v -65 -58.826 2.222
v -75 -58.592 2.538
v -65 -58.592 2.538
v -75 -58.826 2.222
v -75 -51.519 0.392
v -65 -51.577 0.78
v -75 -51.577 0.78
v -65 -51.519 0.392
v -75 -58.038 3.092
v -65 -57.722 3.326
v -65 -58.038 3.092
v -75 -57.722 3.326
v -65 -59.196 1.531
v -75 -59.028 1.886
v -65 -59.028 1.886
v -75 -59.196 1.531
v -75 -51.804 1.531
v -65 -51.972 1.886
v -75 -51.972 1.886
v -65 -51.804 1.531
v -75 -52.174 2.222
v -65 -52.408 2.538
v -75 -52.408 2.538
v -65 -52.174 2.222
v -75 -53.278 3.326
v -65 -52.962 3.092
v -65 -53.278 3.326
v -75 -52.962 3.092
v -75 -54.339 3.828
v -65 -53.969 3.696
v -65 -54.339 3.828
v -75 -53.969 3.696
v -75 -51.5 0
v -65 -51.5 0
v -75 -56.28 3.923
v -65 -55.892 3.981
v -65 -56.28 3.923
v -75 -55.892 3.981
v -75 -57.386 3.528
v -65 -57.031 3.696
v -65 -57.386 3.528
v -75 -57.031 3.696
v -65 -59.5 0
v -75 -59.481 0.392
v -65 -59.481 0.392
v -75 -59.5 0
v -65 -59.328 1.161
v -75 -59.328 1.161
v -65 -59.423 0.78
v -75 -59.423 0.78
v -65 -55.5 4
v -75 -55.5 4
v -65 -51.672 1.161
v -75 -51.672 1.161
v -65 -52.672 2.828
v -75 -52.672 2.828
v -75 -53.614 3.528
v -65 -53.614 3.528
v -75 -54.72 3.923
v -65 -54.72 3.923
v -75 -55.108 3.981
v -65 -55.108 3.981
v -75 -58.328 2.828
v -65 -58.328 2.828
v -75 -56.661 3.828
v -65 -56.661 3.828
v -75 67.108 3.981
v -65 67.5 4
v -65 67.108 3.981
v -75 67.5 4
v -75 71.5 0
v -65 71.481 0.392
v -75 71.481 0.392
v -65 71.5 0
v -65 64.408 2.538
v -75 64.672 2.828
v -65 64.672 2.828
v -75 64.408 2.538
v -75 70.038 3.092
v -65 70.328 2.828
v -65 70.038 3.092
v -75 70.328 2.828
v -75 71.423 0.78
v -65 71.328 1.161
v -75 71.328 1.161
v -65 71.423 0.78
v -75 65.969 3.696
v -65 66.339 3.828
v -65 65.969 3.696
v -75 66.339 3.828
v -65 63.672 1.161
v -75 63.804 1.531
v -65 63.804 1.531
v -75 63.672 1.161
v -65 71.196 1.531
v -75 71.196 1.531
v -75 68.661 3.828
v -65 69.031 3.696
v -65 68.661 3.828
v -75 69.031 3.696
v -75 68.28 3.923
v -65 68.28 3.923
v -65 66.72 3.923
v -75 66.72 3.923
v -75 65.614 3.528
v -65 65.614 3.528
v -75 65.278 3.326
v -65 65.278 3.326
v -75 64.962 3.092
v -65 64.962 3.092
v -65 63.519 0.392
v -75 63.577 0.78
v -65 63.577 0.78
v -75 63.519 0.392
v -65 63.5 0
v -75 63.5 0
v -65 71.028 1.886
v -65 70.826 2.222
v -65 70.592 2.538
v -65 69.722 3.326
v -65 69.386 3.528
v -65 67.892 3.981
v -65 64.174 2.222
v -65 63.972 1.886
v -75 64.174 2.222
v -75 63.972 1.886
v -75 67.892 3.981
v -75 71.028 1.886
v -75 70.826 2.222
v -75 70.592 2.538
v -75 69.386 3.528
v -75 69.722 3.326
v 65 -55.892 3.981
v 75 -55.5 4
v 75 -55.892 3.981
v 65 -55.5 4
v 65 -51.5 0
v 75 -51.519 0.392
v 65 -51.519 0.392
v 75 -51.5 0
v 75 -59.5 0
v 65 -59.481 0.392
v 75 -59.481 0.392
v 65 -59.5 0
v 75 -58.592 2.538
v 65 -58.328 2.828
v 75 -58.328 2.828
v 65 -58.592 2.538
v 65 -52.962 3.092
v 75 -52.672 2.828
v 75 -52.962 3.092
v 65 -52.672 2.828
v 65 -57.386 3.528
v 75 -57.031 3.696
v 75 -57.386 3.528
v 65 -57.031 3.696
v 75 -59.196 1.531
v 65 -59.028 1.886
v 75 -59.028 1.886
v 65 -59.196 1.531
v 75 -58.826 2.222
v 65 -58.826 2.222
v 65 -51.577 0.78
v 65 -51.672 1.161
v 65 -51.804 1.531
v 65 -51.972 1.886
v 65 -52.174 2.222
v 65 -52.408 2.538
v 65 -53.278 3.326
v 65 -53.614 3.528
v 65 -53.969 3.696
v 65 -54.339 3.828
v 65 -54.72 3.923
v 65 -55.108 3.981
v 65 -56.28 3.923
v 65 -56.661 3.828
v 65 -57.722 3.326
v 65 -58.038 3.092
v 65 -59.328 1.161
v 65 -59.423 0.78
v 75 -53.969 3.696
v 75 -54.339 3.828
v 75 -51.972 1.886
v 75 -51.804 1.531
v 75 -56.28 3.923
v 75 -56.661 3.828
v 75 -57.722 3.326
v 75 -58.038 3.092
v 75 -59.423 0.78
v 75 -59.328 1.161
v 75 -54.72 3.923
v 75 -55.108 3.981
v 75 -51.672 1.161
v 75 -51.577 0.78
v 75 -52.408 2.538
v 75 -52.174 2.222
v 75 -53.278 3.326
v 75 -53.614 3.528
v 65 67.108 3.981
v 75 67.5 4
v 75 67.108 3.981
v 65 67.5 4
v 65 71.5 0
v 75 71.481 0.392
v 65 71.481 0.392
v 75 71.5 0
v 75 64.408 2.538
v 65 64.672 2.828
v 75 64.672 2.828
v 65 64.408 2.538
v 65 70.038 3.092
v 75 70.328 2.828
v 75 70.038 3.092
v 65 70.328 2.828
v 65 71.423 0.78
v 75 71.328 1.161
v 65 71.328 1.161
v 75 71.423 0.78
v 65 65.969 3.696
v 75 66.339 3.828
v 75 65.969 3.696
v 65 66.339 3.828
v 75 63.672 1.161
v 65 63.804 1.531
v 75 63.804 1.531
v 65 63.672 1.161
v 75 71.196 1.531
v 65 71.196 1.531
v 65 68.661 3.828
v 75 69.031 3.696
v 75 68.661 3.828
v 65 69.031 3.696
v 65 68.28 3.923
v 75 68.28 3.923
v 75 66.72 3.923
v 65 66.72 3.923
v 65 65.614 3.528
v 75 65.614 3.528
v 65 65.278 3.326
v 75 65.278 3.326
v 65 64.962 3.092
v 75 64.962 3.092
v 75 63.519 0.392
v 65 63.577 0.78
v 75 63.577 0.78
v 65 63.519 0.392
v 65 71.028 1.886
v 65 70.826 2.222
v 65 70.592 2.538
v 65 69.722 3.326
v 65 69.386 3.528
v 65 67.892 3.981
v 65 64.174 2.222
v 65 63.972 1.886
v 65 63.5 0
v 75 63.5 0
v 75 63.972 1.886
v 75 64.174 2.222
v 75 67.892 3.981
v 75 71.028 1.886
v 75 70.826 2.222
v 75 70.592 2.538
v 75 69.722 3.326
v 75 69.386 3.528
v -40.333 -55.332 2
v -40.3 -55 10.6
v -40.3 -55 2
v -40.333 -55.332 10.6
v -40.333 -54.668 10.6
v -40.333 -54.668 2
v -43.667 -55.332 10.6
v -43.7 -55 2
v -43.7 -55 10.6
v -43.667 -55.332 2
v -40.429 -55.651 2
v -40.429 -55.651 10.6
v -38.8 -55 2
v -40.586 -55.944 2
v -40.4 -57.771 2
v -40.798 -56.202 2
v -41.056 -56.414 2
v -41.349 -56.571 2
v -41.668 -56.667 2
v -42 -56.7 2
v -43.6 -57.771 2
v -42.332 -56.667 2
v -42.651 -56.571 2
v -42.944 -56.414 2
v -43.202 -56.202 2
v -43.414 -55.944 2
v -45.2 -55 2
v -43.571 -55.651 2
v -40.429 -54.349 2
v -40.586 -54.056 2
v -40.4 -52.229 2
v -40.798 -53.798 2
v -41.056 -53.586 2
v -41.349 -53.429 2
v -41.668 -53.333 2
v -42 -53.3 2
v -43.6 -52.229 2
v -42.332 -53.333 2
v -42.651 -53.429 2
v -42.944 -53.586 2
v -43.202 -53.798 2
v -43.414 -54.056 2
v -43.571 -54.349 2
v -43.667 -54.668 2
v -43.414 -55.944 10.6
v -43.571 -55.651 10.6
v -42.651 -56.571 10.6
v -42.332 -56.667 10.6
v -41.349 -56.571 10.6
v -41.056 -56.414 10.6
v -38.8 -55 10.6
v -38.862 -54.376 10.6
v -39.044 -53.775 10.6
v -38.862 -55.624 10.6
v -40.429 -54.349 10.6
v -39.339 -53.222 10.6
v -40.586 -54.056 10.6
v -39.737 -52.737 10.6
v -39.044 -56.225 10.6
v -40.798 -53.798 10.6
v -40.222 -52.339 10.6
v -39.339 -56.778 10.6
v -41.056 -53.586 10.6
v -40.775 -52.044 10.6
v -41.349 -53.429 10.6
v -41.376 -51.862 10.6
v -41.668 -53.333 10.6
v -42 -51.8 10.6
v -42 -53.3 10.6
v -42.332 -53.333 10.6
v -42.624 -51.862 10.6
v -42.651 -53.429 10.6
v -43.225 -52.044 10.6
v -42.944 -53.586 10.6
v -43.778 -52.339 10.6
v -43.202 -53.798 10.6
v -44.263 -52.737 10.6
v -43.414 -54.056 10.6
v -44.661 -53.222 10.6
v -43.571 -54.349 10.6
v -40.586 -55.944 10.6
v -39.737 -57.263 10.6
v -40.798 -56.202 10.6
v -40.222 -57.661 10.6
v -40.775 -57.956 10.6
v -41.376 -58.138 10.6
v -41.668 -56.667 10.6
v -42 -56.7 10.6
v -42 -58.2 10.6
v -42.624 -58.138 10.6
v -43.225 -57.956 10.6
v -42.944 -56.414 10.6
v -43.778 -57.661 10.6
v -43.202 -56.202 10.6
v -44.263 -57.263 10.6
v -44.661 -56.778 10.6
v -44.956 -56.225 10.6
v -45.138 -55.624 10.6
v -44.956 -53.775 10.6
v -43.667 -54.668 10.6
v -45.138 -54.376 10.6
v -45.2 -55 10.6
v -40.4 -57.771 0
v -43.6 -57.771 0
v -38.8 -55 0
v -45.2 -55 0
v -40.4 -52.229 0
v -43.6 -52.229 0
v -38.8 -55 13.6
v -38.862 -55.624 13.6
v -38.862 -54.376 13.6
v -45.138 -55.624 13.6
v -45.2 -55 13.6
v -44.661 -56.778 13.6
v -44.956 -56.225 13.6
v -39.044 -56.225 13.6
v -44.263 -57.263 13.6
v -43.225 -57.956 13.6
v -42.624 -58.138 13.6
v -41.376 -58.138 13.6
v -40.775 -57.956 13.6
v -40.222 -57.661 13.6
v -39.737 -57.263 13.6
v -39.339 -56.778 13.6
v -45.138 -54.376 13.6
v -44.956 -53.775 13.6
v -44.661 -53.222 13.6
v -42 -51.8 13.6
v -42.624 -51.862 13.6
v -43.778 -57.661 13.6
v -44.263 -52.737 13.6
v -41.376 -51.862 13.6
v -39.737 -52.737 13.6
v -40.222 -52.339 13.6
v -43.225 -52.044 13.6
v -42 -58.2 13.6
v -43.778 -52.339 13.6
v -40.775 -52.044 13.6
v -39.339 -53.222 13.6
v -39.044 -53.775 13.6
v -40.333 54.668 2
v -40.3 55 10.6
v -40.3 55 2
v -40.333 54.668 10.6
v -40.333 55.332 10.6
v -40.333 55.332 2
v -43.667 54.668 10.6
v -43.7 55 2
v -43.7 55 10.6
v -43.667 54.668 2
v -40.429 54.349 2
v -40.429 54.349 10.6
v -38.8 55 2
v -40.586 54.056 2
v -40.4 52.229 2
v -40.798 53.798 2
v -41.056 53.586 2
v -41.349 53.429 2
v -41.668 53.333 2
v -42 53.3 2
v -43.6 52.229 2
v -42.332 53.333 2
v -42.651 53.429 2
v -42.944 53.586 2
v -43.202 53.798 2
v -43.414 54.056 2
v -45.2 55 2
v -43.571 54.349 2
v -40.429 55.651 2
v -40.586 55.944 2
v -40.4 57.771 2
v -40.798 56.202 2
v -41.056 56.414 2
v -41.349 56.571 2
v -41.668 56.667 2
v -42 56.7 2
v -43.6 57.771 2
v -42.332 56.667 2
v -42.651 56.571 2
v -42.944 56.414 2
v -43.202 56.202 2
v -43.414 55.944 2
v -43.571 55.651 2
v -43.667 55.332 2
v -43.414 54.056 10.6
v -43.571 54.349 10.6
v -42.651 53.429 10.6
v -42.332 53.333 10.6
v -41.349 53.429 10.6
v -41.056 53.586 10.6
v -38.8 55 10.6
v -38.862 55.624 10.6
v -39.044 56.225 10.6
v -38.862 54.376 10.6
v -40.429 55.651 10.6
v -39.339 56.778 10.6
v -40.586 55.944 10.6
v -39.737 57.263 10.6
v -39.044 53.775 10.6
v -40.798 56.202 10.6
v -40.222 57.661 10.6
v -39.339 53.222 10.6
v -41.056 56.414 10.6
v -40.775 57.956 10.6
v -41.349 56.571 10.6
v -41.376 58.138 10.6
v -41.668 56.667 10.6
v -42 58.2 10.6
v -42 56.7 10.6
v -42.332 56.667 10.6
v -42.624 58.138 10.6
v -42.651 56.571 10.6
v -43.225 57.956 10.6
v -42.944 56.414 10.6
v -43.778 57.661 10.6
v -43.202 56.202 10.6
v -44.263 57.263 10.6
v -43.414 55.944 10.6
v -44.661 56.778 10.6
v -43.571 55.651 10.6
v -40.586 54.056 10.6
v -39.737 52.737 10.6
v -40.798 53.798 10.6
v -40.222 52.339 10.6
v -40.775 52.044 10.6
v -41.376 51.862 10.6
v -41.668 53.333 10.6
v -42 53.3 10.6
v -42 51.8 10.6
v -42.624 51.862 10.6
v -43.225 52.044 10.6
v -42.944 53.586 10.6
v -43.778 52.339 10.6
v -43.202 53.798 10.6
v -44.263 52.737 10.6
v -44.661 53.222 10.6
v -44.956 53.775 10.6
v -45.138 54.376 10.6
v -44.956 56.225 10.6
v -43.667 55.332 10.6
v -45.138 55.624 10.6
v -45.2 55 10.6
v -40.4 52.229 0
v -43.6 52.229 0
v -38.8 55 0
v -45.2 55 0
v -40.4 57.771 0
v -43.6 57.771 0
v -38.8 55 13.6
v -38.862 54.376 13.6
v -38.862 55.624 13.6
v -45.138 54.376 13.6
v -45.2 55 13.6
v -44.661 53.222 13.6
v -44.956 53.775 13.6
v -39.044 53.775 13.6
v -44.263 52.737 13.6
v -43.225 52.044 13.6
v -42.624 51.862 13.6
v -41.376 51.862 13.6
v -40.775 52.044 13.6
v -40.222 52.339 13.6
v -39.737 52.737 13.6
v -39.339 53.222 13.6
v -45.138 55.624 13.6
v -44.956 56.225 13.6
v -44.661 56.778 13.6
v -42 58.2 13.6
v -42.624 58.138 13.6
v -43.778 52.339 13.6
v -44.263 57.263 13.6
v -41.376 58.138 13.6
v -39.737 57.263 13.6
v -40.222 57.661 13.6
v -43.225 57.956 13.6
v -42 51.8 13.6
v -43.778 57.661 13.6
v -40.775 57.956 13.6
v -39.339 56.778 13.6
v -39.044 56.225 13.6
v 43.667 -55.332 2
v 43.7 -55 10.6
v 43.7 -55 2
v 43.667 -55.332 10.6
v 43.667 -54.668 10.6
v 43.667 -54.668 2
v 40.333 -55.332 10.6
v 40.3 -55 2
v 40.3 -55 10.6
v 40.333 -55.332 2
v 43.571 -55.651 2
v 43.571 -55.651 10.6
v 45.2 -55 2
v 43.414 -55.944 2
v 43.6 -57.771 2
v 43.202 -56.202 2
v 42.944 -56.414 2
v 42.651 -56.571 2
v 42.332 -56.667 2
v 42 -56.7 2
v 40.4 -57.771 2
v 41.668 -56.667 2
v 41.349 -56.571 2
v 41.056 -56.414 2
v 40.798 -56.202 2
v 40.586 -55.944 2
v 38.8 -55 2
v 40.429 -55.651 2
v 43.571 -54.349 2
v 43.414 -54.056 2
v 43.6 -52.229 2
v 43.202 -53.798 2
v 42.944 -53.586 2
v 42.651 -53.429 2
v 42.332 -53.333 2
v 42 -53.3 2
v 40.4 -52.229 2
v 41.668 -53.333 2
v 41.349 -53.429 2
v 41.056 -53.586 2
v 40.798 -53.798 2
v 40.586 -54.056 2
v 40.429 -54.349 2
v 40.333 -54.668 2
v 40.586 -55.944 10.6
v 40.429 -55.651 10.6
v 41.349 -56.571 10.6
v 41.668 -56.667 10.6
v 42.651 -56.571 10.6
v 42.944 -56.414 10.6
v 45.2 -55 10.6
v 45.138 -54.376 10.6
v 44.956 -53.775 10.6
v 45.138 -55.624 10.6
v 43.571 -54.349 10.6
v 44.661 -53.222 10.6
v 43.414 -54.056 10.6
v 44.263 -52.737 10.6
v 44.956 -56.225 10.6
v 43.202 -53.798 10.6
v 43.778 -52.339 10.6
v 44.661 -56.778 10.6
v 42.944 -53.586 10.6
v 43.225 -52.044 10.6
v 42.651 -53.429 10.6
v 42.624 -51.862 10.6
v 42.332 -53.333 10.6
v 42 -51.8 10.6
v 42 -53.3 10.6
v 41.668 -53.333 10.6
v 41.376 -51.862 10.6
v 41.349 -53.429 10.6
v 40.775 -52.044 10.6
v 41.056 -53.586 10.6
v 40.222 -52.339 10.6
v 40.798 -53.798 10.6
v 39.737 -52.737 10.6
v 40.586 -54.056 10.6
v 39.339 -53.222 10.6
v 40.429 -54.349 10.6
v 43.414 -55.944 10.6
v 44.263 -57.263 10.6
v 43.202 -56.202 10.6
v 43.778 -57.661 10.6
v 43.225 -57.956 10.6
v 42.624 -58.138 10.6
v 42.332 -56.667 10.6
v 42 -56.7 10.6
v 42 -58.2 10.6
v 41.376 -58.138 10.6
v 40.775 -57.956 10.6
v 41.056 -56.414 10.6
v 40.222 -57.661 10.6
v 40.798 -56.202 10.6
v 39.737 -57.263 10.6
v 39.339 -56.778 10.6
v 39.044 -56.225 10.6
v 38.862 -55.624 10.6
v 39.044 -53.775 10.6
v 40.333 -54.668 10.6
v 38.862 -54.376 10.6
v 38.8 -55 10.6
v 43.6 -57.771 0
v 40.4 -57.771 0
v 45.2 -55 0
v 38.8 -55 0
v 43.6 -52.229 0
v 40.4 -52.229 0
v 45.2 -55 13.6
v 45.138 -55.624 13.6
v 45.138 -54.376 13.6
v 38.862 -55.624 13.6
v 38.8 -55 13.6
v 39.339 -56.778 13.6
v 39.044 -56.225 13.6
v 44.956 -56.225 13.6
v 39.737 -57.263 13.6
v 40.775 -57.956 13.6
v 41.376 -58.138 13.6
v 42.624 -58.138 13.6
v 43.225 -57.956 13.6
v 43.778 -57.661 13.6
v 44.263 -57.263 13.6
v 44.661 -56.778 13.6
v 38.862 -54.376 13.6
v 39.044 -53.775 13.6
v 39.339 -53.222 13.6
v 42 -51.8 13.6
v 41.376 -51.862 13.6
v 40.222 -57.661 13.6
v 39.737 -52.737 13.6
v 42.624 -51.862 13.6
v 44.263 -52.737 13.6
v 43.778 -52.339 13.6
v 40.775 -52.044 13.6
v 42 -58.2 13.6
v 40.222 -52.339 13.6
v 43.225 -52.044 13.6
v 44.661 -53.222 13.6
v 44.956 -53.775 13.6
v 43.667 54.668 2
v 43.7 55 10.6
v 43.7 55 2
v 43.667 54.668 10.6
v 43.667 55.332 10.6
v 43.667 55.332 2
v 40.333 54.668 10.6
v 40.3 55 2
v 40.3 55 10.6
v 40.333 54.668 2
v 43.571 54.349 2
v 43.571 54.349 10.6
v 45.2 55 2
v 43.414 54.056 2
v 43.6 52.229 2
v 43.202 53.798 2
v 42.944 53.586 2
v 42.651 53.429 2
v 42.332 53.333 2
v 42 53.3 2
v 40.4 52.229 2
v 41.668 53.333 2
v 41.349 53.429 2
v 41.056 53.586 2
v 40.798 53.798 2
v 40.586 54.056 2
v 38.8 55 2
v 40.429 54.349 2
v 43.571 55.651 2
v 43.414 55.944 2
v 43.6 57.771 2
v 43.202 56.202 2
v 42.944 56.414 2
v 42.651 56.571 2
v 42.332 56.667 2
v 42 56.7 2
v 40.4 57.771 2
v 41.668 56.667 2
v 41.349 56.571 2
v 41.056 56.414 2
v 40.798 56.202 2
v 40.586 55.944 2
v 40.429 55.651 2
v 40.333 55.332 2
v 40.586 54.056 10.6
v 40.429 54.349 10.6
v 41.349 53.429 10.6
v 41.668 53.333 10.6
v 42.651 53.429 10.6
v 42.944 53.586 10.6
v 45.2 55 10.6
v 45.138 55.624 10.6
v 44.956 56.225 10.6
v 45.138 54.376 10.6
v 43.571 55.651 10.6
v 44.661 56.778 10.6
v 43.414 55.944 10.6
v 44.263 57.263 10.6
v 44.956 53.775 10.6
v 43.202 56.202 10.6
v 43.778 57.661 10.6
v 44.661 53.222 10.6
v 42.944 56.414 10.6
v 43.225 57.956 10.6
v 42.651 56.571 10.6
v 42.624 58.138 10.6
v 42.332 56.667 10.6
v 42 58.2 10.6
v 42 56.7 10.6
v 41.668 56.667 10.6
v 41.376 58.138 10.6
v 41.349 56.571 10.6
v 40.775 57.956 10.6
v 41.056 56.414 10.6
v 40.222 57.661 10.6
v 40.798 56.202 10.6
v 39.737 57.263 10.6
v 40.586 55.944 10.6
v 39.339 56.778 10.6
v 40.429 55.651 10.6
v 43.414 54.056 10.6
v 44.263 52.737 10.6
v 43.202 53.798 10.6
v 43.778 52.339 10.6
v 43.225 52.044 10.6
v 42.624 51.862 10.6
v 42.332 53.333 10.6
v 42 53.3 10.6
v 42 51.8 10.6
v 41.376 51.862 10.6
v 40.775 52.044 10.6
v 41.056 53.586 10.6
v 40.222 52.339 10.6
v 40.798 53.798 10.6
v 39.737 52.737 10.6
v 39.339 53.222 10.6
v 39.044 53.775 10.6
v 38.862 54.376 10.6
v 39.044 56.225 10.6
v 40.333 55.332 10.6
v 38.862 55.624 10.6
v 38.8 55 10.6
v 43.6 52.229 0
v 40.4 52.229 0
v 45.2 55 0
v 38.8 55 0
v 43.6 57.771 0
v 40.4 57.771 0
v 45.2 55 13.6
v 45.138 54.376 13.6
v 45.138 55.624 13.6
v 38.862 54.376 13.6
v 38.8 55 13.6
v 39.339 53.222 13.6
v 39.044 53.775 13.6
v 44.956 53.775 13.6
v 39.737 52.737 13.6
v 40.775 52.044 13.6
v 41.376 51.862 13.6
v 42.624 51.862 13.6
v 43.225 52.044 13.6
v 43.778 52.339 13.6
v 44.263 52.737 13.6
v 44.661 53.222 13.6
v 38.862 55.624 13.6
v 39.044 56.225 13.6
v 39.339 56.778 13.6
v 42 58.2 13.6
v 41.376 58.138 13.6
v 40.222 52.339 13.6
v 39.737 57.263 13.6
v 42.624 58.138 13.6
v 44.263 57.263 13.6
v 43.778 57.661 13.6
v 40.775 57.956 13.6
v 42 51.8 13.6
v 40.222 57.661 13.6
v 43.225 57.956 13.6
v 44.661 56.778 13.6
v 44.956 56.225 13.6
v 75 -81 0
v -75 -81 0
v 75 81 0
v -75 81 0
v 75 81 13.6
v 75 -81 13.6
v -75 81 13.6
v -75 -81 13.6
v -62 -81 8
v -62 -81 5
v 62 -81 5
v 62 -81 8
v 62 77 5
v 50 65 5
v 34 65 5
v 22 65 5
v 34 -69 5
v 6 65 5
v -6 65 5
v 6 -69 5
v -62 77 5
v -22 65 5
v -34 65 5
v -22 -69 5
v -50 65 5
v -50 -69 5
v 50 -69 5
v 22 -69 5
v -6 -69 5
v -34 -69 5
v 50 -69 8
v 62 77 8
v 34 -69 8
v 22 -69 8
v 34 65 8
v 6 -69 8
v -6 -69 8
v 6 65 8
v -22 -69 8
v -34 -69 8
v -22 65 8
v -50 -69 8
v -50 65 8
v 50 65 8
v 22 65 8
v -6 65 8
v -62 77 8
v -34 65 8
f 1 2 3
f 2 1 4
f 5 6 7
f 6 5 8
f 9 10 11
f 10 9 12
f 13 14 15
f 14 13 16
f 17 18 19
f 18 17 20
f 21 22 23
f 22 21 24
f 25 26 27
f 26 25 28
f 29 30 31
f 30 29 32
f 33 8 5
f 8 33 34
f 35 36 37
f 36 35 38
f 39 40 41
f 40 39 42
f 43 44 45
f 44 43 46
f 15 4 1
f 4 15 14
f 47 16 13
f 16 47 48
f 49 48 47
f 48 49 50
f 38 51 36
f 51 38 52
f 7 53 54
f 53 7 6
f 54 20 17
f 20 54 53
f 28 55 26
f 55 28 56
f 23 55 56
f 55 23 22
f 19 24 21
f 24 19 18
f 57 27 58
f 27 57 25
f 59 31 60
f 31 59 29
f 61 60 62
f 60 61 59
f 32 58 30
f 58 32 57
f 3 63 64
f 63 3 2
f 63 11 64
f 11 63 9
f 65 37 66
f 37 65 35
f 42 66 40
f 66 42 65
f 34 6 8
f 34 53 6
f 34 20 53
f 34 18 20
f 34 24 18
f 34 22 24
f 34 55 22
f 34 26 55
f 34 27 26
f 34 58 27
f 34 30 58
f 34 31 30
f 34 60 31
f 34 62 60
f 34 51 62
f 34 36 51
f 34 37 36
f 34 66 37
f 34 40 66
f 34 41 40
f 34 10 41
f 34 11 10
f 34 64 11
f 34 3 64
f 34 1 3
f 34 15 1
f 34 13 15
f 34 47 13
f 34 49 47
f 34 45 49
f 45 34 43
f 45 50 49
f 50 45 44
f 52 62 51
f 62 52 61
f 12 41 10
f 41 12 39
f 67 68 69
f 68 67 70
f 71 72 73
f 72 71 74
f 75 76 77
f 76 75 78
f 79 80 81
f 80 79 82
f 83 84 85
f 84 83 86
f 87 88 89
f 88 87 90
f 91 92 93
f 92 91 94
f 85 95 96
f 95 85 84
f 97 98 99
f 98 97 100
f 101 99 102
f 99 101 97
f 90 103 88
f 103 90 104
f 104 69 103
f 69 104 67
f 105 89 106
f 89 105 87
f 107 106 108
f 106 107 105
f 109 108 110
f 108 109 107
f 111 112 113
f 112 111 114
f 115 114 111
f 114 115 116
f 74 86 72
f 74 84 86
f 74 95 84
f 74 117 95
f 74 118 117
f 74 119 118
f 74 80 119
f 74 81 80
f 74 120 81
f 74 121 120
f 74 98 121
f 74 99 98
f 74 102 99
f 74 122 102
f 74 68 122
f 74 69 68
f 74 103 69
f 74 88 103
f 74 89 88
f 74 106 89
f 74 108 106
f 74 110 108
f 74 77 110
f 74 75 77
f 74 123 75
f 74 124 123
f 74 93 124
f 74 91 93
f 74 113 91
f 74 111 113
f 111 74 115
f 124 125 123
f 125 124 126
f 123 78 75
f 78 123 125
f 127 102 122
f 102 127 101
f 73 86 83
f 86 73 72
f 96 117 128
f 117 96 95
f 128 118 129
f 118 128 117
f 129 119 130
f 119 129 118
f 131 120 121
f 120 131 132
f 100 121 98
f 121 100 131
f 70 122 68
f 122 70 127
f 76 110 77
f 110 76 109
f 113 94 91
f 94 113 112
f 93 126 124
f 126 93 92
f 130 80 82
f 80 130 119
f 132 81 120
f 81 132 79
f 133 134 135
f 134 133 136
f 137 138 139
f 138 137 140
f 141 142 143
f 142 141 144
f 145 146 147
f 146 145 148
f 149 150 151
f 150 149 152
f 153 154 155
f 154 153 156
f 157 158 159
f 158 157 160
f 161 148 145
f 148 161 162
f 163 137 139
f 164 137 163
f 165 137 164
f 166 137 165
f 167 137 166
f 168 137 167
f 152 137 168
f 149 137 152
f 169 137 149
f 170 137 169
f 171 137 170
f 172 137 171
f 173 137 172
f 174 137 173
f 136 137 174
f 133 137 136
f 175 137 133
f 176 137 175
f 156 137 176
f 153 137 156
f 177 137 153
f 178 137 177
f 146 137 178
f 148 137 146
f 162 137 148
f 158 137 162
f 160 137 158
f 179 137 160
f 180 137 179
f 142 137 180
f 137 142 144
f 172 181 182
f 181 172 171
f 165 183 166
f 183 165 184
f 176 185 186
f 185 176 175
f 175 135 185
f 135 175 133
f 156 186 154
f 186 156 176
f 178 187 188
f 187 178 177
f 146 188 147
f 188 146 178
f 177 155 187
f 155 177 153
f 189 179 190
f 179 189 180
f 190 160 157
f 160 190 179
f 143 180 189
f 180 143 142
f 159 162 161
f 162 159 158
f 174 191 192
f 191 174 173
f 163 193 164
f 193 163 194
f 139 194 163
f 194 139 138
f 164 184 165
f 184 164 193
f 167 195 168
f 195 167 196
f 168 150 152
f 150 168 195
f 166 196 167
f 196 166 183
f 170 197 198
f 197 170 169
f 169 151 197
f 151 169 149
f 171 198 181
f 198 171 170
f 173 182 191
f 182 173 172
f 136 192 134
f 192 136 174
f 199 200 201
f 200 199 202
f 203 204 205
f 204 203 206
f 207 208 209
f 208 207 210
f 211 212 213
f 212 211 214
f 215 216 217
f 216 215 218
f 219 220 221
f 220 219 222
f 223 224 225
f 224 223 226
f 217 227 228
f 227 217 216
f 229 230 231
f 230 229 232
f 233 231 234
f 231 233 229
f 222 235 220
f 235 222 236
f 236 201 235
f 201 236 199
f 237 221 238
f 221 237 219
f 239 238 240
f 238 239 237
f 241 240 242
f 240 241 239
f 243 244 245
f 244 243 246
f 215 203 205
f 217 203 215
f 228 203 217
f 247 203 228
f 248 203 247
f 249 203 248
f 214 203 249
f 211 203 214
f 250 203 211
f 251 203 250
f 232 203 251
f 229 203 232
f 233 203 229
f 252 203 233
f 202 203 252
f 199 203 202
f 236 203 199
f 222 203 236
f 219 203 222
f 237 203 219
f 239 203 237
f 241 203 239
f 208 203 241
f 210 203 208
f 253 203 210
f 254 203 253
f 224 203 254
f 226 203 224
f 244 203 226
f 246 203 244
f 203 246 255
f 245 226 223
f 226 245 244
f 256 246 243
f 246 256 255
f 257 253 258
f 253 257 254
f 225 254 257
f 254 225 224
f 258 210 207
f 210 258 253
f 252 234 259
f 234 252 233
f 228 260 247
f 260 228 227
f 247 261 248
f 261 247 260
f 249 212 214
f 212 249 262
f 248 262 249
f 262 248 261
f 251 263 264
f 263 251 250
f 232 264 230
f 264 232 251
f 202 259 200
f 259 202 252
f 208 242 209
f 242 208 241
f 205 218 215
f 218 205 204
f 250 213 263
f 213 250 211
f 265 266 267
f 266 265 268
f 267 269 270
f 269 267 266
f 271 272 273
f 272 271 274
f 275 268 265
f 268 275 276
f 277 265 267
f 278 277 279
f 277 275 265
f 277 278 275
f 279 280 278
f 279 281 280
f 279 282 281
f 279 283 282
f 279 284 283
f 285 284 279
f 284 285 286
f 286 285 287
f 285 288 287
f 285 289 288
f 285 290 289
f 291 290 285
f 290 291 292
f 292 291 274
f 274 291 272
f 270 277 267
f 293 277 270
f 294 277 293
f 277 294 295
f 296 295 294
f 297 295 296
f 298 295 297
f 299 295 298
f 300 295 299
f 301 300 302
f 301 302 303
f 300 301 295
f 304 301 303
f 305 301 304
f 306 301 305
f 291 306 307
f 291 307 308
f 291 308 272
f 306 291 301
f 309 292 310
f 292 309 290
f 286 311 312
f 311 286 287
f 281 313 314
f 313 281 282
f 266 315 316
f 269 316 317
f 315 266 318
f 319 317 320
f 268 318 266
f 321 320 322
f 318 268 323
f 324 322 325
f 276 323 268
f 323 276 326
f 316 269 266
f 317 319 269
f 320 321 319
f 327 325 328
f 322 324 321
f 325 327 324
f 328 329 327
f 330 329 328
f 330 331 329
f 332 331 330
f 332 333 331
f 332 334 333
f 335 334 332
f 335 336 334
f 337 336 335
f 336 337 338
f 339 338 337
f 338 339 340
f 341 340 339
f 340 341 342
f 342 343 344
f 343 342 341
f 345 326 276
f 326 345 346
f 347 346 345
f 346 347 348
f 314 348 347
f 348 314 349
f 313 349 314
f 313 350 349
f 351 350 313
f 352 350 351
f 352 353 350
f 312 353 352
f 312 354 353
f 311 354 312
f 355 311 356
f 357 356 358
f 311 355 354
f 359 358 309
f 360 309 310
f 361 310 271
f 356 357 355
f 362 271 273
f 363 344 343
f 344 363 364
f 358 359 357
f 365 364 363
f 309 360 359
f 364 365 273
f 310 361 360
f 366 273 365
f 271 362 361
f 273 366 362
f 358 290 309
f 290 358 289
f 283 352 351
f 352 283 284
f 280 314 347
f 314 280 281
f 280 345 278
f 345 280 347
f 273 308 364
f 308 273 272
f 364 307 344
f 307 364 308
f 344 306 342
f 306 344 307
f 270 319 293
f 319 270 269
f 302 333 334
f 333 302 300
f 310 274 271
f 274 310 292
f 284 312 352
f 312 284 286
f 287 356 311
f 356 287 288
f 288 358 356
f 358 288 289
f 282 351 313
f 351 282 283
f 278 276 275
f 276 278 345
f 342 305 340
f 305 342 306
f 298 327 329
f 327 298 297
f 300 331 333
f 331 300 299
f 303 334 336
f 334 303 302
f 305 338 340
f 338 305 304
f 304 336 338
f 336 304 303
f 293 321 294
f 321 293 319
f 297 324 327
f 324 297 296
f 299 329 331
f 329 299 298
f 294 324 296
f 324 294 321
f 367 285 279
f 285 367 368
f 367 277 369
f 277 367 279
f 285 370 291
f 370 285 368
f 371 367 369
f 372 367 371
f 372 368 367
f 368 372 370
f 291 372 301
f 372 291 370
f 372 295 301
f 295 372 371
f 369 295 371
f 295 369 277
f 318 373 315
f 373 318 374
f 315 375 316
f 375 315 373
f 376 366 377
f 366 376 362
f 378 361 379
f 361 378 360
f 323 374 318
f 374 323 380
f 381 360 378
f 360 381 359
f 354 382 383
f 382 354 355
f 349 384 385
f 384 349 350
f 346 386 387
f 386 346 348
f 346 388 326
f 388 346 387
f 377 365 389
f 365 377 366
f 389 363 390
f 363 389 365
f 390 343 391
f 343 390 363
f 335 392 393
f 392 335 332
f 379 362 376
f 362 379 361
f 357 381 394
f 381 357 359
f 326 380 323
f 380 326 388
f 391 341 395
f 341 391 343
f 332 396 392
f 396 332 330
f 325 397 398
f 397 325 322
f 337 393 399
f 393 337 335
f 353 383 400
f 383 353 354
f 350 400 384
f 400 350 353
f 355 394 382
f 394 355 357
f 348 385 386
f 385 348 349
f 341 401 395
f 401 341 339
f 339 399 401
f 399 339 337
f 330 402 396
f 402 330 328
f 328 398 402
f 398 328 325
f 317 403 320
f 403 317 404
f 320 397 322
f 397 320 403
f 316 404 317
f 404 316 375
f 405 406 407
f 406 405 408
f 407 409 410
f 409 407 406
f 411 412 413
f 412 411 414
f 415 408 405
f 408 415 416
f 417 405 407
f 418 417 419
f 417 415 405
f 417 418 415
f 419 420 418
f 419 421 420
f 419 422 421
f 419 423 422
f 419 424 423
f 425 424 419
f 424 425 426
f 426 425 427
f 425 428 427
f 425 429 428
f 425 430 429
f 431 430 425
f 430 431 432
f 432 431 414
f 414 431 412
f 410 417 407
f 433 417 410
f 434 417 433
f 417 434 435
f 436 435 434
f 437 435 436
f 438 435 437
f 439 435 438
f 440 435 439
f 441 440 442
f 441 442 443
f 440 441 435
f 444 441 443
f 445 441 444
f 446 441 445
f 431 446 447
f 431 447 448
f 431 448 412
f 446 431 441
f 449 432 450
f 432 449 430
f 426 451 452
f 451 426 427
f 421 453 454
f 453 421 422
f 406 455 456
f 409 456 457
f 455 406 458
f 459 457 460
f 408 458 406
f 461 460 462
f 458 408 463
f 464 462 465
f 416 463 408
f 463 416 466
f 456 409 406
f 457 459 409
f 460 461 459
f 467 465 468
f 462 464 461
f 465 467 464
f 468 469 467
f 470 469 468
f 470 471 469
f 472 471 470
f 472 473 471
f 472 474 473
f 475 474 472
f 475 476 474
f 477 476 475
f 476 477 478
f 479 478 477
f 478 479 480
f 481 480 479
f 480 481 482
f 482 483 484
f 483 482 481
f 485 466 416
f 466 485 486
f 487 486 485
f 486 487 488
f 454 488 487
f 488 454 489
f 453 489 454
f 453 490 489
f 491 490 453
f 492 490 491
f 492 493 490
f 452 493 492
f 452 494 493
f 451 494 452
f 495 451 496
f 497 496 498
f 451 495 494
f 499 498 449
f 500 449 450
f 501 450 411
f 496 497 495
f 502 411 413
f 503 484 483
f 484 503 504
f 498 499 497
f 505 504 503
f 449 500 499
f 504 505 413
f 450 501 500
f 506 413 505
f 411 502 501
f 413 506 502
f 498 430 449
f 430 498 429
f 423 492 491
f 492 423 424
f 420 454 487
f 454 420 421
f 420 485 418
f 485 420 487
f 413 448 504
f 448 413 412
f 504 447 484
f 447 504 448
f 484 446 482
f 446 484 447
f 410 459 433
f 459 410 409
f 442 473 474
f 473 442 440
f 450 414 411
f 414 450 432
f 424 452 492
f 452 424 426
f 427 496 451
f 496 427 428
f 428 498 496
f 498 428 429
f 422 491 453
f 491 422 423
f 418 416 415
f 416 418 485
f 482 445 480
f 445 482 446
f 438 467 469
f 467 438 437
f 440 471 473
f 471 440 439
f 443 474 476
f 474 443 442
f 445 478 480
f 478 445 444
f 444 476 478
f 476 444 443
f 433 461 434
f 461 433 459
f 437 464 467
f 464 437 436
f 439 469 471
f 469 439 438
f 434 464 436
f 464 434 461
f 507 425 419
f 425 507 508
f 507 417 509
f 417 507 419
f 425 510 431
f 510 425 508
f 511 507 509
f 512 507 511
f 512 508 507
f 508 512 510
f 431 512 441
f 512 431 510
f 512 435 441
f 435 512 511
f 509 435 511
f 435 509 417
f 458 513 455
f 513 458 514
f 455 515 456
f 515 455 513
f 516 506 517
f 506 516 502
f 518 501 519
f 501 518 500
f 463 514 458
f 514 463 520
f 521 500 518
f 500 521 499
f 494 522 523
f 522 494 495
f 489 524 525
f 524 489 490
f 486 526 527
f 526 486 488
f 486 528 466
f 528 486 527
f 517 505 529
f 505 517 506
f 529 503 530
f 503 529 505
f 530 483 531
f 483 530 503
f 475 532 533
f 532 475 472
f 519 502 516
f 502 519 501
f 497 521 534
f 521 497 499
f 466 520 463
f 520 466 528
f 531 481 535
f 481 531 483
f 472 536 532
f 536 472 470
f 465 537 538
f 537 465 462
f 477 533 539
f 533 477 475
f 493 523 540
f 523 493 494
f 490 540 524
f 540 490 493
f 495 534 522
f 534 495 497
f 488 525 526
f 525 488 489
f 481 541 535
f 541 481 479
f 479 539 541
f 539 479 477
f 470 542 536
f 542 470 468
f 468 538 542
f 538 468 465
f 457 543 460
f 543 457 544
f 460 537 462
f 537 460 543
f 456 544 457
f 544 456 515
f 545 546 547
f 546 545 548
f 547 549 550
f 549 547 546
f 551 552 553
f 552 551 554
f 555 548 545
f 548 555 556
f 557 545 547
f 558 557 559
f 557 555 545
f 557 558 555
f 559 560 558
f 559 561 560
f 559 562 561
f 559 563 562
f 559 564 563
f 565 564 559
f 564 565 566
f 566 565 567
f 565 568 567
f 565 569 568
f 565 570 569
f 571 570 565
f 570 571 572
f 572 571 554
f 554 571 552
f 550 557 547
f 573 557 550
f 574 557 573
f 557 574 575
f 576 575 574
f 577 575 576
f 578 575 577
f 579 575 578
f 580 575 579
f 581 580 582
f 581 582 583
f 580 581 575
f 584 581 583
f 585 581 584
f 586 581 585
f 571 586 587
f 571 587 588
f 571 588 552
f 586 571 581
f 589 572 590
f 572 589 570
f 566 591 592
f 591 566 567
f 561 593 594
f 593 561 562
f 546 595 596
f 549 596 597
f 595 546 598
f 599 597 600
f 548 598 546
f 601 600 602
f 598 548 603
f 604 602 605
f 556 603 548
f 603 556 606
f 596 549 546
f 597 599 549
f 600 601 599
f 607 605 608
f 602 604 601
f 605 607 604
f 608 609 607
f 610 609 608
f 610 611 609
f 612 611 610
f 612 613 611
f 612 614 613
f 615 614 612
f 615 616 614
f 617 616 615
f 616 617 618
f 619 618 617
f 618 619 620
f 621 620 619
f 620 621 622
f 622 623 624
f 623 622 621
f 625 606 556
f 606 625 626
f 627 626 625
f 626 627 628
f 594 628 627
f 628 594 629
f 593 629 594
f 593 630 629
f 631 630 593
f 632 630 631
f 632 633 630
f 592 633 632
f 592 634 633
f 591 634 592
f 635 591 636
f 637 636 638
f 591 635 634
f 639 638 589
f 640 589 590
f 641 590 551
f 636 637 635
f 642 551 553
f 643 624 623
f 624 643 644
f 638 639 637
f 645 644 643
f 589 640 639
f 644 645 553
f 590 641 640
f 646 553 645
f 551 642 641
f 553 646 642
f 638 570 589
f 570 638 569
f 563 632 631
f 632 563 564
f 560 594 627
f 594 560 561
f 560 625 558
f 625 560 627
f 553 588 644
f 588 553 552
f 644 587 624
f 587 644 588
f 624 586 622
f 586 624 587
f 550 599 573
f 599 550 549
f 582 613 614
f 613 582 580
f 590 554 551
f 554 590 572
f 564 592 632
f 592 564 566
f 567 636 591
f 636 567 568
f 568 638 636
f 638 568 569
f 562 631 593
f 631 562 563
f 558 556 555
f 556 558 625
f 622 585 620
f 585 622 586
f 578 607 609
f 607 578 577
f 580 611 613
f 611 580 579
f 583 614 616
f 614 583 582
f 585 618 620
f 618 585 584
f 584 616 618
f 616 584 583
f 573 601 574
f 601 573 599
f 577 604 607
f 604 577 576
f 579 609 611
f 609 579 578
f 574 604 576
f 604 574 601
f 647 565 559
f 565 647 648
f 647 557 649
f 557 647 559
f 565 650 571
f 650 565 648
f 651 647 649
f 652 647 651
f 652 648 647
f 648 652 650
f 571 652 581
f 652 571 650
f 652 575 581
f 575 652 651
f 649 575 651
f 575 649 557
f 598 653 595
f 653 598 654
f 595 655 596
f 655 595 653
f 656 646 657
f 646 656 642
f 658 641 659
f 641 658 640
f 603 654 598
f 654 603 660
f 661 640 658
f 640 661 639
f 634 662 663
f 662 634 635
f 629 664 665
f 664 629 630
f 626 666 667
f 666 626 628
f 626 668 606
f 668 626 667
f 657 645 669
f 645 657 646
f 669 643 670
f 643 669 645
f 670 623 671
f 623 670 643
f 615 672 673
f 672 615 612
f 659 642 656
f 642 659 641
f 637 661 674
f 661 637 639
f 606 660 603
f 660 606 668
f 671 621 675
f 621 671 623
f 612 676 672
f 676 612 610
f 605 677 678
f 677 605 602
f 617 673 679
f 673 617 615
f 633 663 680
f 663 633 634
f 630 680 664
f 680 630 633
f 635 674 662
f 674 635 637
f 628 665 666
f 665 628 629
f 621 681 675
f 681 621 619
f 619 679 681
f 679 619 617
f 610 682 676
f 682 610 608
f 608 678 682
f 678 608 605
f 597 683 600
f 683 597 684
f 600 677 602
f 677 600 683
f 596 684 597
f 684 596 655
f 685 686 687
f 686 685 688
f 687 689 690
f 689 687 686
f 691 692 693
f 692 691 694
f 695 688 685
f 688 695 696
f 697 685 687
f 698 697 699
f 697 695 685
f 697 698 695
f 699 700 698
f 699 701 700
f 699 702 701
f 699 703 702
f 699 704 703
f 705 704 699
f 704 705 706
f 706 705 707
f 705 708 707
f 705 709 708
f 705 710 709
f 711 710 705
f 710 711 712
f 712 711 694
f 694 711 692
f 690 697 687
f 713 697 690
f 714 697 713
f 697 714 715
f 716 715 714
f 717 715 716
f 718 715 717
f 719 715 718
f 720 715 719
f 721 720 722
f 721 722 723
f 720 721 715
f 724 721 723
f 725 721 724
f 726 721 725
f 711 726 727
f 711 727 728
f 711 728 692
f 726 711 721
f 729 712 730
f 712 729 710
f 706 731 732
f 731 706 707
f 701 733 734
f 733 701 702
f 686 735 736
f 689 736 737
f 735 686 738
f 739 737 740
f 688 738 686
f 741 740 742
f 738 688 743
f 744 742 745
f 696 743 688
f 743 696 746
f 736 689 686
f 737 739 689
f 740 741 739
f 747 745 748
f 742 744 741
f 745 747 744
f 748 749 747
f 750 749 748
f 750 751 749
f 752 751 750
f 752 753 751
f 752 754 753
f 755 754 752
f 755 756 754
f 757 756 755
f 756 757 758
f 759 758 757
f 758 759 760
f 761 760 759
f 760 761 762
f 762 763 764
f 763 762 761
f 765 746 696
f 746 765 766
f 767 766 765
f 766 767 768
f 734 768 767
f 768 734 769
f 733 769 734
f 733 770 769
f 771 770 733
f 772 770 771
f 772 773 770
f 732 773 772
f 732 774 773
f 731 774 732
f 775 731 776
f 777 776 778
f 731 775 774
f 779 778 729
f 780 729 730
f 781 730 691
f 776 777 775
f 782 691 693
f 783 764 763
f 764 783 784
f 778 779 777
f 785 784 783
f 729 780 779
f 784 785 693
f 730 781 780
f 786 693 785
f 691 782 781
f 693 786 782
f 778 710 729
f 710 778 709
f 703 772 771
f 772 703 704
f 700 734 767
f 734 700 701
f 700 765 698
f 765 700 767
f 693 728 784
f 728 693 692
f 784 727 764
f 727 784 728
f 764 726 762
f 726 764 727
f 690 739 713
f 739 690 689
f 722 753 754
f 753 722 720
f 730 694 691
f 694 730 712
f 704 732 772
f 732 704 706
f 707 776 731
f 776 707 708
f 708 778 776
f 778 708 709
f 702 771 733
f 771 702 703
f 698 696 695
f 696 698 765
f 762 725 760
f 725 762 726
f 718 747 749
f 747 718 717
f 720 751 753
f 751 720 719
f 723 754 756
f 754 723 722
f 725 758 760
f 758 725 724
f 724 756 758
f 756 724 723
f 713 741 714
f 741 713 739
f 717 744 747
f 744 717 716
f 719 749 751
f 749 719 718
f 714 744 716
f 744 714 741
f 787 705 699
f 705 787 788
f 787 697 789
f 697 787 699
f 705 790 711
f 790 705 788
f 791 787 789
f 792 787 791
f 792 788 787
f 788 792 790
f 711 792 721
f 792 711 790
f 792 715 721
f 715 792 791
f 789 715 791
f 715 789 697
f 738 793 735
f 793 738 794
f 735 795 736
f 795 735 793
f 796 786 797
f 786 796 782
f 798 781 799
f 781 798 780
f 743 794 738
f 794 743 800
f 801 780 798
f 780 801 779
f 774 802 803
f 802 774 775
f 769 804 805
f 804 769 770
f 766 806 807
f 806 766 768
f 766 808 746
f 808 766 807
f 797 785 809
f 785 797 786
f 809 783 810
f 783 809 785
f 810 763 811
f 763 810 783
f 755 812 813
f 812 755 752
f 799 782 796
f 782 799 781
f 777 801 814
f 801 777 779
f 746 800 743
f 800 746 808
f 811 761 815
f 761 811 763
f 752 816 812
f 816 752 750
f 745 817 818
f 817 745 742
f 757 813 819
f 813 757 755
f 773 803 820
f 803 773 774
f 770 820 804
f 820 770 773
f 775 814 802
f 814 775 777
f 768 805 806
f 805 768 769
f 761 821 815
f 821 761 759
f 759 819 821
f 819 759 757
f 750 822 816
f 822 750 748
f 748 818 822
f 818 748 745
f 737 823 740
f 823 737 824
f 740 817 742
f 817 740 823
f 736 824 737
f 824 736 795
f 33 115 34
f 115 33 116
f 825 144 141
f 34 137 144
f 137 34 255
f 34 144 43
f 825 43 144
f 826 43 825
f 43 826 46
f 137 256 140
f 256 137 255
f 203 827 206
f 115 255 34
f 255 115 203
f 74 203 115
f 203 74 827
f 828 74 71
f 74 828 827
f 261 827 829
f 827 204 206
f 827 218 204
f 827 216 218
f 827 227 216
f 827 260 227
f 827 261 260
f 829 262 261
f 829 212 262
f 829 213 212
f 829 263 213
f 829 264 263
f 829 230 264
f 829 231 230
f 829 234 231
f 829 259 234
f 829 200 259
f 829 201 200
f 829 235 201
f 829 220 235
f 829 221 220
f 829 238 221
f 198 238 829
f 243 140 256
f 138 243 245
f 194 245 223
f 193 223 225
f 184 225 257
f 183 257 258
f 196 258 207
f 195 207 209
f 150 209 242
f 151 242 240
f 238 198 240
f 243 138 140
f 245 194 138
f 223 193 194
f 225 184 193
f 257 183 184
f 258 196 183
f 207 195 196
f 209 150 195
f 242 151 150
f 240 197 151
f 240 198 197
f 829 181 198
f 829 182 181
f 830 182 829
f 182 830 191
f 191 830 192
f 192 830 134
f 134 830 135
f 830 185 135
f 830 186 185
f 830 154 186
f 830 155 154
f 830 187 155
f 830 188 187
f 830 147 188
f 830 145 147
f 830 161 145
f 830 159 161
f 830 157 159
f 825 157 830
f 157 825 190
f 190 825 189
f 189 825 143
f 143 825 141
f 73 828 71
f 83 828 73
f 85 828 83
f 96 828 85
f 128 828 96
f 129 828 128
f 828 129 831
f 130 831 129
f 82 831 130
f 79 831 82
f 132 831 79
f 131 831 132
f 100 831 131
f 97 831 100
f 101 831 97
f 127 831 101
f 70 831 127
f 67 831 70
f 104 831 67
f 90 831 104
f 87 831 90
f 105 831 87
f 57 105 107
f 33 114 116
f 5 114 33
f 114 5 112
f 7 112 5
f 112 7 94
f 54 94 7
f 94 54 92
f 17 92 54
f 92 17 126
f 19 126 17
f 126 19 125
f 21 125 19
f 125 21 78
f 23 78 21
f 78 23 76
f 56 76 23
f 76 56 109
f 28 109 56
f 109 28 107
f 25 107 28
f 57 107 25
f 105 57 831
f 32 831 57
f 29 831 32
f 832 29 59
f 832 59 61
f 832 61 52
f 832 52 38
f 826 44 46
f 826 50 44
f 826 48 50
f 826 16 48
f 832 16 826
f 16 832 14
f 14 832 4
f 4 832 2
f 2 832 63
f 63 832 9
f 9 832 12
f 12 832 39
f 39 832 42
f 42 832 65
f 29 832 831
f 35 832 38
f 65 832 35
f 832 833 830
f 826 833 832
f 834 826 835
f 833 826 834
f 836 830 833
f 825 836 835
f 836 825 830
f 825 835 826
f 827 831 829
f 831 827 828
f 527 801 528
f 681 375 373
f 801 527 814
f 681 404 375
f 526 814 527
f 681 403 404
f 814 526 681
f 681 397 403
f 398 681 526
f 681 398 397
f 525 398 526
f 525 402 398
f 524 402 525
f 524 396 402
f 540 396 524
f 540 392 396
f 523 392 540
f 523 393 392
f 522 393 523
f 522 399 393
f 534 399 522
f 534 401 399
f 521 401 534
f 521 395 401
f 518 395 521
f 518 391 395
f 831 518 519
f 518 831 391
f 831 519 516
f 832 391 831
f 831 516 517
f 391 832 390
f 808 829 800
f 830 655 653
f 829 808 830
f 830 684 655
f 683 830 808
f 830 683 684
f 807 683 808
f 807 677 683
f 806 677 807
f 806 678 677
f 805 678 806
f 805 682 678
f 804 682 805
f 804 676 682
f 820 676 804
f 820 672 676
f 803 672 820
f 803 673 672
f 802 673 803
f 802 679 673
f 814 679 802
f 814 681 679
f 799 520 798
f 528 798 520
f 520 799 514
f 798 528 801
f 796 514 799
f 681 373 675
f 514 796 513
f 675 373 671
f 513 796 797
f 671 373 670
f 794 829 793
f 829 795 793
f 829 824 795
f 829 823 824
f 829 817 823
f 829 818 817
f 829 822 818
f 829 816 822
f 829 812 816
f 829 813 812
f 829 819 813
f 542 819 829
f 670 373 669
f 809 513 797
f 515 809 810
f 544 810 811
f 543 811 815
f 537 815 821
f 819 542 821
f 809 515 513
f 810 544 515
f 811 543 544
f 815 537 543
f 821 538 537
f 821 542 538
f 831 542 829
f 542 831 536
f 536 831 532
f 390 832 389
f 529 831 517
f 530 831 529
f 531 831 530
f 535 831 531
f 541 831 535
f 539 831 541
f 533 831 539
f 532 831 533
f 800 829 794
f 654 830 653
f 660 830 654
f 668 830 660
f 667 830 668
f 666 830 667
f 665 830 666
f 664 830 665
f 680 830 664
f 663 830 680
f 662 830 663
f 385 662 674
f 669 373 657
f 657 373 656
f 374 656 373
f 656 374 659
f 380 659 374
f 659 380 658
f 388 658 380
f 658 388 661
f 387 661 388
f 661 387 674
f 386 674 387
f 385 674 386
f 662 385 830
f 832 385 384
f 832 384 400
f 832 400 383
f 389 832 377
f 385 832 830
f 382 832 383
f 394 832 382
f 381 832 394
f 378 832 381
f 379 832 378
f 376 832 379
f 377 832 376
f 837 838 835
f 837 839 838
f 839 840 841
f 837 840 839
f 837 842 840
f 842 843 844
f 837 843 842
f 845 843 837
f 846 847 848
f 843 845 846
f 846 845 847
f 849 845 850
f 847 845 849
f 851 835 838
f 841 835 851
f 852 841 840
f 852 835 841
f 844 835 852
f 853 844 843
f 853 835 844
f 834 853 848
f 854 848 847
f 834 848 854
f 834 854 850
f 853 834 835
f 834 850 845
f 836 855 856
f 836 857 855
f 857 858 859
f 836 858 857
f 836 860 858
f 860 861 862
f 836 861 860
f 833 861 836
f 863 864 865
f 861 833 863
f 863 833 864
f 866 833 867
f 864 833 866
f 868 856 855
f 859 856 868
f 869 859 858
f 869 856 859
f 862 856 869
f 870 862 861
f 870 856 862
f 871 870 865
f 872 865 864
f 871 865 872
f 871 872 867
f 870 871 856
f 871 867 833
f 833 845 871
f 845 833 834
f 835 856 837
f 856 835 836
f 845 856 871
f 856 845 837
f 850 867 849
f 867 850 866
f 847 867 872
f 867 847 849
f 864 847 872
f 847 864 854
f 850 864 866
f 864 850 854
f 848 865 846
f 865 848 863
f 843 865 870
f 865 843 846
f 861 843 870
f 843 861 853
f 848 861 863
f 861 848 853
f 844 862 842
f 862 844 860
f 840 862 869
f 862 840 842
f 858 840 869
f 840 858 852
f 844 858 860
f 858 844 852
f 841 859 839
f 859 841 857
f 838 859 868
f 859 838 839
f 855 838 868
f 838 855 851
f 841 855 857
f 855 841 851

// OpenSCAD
$fn = 64;
size = [150.00, 162.00];


height = 13.60;

module grid(x, y, width, height, center = true)
{
    x_space = width / (x - 1);
    y_space = height / (y - 1);
    translate(center ? [-(x_space * (x - 1))/2, -(y_space * (y - 1))/2, 0] : [0, 0, 0])
        for (i = [0:x_space:(x - 1) * x_space]) {
            for (j = [0:y_space:(y - 1) * y_space]) {
                translate([i, j, 0]) {
                    children();
                }
            }
        }
}



//rotate([0, 90, 0])
    //circle(r = 4.00);

module bolt_hex_socket(height, size, tolerance = 0.2) {
    linear_extrude(height)
        circle(r = (size / 2) + tolerance, $fn = 6);
}

module bolt_rod_socket(height, size, tolerance = 0.2) {
    linear_extrude(height)
        circle(r = (size / 2) + tolerance, $fn = 32);
}

module bolt_allen_socket(height, size, tolerance = 0.2) {
    linear_extrude(height)
        circle(r = (size / 2) + tolerance, $fn = 32);
}

module allen_bolt(height = 12.0, size = 3.0) {
    allen_socket_height = 3.00;
    hex_socket_height = 2.00;
    rod_height = height - allen_socket_height - hex_socket_height;
    
    
    bolt_allen_socket(allen_socket_height, size + 3.0);
    
    translate([0, 0, allen_socket_height])
    union() {
        bolt_rod_socket(rod_height, size);
        
        translate([0, 0, rod_height])
            bolt_hex_socket(hex_socket_height, size + 3.0);
    }
}

module repeat_y(times, width, center = true) {
    times = times - 1;
    for (i = [0:1:times])
        translate([0, i * (width / times) - (center ? width / 2 : 0), 0])
            children();
}

module repeat_x(times, width, center = true) {
    times = times - 1;
    for (i = [0:1:times])
        translate([i * (width / times) - (center ? width / 2 : 0), 0, 0])
            children();
}

module shelf() {
    difference() {
        linear_extrude(height)
            square(size, center = true);
        
        strip_w = 12.00;
        
        translate([0, 6, 0])
            grid(2, 2, size[0], 115.00 + 8.00)
                rotate([0, 90, 0])
                    translate([0, 0, -10])
                        linear_extrude(20)
                            circle(r = 4.00);
        
        grid(2, 2, 84, 110)
            mirror([0, 0, 1])
                translate([0, 0, -height])
                allen_bolt(height = height);
        
        translate([0, 0, 5])
        linear_extrude(3)
            union() {
                translate([-((size[0] - 26.00) / 2), size[0] / 2 - 10, 0])
                    square([size[0] - 26.00, strip_w]);
                
                translate([-((size[0] - 26.00) / 2), -(size[0] / 2) - 6, 0])
                    square([size[0] - 26.00, strip_w]);
                
                repeat_x(5, size[0] - 38.00)
                    translate([-(strip_w / 2), -70.00, 0])
                        square([strip_w, 140.00]);
            }
    }
}

shelf();
